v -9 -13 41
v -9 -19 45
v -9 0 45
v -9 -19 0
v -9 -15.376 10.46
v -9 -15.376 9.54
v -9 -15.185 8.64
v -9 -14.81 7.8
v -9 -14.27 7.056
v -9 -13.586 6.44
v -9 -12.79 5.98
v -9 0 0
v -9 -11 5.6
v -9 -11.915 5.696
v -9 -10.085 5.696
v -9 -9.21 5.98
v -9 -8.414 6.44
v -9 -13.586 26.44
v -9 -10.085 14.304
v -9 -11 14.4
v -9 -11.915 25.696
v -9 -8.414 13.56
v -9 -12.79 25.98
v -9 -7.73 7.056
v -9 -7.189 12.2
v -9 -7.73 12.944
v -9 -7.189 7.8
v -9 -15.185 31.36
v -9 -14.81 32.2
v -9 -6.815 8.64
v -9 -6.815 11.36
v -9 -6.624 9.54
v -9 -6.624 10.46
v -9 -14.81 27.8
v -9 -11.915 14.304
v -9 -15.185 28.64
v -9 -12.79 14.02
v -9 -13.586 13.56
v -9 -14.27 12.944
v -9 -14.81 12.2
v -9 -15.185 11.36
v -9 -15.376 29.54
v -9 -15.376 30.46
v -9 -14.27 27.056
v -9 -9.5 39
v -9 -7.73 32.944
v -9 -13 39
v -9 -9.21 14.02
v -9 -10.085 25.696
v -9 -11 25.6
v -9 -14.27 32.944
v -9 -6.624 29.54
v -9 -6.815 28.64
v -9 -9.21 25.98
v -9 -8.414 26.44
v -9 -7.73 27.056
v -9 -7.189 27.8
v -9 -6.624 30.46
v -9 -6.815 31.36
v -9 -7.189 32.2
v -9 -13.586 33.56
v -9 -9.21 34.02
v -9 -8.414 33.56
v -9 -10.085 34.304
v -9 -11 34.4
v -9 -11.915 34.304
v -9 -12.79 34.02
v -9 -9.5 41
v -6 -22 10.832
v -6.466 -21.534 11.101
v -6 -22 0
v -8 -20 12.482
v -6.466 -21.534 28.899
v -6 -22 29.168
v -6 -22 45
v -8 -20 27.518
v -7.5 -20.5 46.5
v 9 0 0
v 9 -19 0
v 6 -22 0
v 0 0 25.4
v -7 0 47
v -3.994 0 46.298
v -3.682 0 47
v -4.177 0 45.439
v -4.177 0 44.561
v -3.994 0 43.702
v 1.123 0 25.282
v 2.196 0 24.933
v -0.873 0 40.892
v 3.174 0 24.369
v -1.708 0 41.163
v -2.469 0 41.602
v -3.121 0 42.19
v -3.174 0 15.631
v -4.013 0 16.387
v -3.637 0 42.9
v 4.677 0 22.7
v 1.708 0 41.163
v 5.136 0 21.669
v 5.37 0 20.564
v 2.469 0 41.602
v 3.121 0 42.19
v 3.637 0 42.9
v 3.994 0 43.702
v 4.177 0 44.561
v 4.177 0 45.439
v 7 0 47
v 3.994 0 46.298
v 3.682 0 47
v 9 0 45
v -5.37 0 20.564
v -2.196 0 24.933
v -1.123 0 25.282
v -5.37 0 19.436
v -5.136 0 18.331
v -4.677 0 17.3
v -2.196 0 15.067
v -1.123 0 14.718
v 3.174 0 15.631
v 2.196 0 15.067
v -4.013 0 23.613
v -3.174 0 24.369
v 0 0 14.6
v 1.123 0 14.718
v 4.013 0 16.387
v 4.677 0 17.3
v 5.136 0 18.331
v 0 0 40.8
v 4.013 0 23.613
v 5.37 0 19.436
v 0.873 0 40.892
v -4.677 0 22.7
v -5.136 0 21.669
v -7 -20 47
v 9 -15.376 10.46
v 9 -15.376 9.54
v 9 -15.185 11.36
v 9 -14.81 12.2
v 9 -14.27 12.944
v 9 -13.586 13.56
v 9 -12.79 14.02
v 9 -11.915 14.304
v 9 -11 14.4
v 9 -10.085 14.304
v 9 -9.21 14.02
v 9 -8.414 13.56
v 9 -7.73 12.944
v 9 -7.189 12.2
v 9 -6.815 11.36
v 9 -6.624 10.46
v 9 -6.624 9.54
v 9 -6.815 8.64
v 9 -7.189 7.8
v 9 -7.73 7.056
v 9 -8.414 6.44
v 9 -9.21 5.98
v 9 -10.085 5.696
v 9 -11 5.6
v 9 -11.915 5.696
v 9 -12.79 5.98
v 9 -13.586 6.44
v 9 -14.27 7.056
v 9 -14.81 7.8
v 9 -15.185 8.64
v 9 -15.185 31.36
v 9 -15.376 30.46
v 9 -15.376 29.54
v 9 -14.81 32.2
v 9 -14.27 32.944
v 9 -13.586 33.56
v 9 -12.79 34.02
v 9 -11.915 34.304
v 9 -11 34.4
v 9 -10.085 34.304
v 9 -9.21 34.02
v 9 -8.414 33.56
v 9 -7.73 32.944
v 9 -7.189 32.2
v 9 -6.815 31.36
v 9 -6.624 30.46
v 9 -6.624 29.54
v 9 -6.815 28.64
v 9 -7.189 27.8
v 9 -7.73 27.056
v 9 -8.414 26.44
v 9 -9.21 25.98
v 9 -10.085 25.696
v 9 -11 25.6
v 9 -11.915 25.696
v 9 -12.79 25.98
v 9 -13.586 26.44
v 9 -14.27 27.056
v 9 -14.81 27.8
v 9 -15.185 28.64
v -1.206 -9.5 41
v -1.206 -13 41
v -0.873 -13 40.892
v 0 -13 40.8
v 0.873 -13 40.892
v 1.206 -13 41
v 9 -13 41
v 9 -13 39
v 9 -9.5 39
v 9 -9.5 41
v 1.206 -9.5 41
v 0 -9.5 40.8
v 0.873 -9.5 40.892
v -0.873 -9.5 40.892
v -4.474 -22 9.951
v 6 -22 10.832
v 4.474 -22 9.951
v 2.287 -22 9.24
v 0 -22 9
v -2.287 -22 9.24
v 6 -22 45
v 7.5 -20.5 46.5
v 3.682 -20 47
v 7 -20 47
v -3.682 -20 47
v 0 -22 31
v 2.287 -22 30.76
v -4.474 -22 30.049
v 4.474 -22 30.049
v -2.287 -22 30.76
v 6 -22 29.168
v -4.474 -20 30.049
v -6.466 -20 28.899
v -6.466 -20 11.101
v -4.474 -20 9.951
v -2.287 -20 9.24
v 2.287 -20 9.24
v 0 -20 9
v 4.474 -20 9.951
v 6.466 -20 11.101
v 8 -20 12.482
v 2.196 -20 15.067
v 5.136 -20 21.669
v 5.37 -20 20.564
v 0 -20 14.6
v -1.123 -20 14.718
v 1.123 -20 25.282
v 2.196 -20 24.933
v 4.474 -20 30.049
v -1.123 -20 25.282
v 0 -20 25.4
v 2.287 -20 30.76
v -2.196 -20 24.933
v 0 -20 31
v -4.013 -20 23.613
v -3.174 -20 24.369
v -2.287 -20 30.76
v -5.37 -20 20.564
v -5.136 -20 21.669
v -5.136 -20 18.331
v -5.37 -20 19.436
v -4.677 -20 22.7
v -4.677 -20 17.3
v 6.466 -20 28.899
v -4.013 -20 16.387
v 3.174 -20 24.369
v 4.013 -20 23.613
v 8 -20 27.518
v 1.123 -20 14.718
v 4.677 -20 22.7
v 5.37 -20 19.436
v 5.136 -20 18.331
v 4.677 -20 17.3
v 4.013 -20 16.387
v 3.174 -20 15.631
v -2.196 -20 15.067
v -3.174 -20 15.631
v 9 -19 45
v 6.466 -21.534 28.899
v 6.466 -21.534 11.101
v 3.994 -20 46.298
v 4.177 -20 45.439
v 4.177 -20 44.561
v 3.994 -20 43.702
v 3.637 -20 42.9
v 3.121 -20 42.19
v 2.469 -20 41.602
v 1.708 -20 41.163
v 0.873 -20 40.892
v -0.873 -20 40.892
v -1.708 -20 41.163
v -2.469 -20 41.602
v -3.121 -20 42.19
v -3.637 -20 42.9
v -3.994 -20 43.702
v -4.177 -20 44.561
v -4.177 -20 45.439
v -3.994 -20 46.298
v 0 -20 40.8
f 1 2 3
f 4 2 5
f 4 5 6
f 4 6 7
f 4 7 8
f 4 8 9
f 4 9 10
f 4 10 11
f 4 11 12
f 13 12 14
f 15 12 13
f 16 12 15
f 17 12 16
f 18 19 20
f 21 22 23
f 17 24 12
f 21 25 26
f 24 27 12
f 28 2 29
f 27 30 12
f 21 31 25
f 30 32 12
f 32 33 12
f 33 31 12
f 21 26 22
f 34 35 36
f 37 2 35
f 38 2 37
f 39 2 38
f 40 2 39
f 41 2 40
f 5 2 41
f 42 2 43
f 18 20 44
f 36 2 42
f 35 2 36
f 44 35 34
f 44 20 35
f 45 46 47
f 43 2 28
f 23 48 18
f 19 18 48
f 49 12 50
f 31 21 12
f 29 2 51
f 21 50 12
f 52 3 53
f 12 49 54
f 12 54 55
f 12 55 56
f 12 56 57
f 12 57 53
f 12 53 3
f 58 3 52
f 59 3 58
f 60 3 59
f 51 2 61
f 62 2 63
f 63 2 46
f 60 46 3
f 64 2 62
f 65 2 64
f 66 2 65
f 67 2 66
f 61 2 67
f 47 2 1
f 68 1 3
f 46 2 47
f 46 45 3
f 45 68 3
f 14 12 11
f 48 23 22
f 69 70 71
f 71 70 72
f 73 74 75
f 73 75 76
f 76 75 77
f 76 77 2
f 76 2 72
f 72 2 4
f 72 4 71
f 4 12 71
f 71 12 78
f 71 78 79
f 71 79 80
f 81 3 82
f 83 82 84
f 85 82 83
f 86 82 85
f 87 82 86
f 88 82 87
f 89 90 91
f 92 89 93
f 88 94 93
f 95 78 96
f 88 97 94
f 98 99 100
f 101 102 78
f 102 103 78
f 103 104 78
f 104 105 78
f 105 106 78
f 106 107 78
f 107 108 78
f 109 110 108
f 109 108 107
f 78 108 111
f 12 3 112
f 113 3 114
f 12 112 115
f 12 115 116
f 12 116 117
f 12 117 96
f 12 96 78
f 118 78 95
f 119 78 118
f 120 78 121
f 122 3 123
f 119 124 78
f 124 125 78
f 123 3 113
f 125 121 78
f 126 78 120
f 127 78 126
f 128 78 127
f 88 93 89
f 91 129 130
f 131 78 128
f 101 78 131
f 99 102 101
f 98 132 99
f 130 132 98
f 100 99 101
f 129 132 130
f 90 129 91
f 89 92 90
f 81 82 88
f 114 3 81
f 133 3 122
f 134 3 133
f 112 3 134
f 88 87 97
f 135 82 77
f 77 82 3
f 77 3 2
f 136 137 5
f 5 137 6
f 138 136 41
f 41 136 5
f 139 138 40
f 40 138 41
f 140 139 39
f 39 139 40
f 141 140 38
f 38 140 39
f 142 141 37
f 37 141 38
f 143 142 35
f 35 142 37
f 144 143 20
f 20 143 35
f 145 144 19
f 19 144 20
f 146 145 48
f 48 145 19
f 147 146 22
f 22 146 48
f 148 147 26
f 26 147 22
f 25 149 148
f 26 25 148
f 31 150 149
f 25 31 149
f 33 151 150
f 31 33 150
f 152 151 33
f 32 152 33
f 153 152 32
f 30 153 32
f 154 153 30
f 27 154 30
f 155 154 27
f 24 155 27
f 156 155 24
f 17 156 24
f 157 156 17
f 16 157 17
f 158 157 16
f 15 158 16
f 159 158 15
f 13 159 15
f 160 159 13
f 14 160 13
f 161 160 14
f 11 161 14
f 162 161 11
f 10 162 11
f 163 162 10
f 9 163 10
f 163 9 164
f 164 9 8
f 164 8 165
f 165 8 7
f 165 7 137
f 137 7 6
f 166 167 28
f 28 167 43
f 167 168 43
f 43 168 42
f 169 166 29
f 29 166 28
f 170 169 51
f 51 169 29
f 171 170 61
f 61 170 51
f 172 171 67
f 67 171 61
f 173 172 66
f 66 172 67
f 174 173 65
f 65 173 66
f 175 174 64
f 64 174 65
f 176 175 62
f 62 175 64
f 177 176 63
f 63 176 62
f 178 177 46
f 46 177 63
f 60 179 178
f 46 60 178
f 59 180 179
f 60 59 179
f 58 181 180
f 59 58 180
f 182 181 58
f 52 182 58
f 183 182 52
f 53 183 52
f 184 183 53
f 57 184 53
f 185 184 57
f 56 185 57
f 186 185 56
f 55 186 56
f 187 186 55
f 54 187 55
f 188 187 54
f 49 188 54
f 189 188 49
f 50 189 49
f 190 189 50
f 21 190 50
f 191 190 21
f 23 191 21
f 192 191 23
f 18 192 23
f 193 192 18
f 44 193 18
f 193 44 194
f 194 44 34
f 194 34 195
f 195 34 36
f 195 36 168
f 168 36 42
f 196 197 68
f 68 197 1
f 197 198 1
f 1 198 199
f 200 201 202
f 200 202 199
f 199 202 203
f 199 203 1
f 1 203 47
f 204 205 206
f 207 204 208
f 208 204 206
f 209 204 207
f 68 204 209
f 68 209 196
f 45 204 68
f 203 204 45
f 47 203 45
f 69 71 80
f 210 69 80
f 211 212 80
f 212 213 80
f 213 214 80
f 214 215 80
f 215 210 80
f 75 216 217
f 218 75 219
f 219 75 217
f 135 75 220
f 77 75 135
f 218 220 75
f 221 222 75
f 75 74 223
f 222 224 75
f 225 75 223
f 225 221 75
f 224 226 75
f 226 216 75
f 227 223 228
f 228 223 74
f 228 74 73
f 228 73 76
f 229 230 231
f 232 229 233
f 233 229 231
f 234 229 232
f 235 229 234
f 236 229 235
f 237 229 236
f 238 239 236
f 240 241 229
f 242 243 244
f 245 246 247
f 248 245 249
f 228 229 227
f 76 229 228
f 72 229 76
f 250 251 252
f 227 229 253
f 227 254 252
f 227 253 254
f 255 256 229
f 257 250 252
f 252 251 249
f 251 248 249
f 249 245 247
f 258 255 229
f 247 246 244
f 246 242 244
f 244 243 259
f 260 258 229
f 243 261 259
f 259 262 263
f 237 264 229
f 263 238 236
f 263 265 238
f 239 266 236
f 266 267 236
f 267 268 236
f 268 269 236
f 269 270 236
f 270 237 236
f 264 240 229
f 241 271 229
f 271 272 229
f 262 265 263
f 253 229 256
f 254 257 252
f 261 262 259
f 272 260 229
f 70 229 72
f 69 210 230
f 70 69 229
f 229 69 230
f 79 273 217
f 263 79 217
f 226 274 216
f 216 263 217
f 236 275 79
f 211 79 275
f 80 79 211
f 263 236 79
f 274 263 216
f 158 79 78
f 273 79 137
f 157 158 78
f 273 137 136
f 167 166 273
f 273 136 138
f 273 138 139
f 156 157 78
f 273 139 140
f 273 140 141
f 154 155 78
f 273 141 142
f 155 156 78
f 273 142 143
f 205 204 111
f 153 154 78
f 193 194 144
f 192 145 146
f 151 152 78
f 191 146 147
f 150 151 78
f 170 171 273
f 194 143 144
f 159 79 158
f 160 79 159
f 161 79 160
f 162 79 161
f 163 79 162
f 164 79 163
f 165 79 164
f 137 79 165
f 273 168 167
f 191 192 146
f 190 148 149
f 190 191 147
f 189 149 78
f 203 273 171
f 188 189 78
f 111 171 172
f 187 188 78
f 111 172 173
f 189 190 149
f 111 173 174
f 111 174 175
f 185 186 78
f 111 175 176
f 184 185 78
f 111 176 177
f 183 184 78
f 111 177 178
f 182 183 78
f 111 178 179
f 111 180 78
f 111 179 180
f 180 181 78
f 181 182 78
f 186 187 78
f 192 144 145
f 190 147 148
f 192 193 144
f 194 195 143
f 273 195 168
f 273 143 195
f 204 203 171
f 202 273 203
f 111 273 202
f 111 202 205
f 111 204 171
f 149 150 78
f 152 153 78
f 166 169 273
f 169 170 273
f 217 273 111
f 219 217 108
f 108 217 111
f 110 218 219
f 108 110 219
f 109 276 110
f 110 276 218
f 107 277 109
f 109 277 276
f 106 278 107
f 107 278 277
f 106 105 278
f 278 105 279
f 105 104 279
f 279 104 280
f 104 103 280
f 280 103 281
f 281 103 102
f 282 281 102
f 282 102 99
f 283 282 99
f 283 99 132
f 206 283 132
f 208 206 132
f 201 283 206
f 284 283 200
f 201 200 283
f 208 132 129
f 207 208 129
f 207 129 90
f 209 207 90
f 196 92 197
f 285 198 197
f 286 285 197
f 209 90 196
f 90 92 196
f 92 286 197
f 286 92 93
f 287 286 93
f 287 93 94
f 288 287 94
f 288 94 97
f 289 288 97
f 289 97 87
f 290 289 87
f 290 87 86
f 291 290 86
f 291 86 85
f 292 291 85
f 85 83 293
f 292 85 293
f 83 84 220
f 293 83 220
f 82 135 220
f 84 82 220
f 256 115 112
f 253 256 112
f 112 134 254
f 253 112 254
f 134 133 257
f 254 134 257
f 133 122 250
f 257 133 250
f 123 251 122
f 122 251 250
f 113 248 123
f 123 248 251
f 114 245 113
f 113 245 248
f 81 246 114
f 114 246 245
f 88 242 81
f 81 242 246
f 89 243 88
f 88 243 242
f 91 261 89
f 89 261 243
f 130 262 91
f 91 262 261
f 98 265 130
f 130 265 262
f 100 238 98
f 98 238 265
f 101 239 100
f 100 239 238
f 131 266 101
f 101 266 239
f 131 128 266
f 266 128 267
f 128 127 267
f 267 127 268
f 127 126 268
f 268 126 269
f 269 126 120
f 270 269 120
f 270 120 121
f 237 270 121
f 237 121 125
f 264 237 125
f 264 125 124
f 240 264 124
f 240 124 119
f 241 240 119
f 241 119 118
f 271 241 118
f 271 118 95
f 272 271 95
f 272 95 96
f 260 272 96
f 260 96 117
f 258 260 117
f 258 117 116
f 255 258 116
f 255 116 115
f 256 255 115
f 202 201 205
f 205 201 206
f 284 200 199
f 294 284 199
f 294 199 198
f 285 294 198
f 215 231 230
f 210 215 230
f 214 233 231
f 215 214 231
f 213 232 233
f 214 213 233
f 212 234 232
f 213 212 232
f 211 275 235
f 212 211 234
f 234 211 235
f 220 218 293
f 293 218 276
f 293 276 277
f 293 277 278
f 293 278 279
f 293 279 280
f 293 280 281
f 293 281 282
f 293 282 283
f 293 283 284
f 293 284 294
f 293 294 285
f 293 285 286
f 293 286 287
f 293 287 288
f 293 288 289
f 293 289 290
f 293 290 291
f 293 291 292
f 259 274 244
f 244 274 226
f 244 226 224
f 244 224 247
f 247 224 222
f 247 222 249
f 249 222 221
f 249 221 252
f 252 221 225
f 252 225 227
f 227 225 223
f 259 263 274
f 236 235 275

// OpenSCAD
// PRUSA iteration3
// Y frame corners
// GNU GPL v3
// Josef Průša <iam@josefprusa.cz> and contributors
// http://www.reprap.org/wiki/Prusa_Mendel
// http://prusamendel.org


module corner_base() {
  translate([-9,-11,0])cube([18,22,47]);
}

module corner_holes(){
  translate([-11,-11,0]) {
    // Bottom hole
    translate([0,11,10]) rotate([0,90,0]) translate([0,0,-5]) cylinder(h = 270, r = 4.4, $fn = 30);

    // Top hole
    translate([0,11,30]) rotate([0,90,0]) translate([0,0,-5]) cylinder(h = 270, r = 4.4, $fn = 30);

    // Middle hole
    translate([11,0,20]) rotate([0,0,90]) rotate([0,90,0]) translate([0,0,-5]) cylinder(h = 270, r = 5.4, $fn = 30);

    // Washer hole
    translate([11,-3,20]) rotate([0,0,90]) rotate([0,90,0]) translate([0,0,-5]) cylinder(h = 10, r = 11, $fn = 30);

    // Top smooth rod insert
    // Smooth rod place
    translate([11,2,45]) rotate([0,90,90]) cylinder(h = 270, r = 4.2, $fn = 30);
    // Ziptie
    translate([-5,9,39]) cube([30,3.5,2]);
  }
}

module corner_fancy() {
  // Side corner cutouts
  translate([-8,-9,0]) rotate([0,0,-45-180]) translate([-15,0,-1]) cube([30,30,51]);
  translate([8,-9,0]) rotate([0,0,45-180]) translate([-15,0,-1]) cube([30,30,51]);

  // Top corner cutouts
  translate([7,0,49-2]) rotate([0,45,0]) translate([-15,-15,0]) cube([30,30,30]);
  translate([-7,0,49-2]) rotate([0,-45,0]) translate([-15,-15,0]) cube([30,30,30]);
  rotate([0,0,90]) {
    translate([-9,0,49-2]) rotate([0,-45,0]) translate([-15,-15,0]) cube([30,30,30]);
  }
}


// Final part
module corner() {
 // Rotate the part for better printing
 translate([0,0,11]) rotate([-90,0,0]) difference() {
  corner_base();
  corner_holes();
  corner_fancy();
 }
}

rotate([90,0,0]) corner();
